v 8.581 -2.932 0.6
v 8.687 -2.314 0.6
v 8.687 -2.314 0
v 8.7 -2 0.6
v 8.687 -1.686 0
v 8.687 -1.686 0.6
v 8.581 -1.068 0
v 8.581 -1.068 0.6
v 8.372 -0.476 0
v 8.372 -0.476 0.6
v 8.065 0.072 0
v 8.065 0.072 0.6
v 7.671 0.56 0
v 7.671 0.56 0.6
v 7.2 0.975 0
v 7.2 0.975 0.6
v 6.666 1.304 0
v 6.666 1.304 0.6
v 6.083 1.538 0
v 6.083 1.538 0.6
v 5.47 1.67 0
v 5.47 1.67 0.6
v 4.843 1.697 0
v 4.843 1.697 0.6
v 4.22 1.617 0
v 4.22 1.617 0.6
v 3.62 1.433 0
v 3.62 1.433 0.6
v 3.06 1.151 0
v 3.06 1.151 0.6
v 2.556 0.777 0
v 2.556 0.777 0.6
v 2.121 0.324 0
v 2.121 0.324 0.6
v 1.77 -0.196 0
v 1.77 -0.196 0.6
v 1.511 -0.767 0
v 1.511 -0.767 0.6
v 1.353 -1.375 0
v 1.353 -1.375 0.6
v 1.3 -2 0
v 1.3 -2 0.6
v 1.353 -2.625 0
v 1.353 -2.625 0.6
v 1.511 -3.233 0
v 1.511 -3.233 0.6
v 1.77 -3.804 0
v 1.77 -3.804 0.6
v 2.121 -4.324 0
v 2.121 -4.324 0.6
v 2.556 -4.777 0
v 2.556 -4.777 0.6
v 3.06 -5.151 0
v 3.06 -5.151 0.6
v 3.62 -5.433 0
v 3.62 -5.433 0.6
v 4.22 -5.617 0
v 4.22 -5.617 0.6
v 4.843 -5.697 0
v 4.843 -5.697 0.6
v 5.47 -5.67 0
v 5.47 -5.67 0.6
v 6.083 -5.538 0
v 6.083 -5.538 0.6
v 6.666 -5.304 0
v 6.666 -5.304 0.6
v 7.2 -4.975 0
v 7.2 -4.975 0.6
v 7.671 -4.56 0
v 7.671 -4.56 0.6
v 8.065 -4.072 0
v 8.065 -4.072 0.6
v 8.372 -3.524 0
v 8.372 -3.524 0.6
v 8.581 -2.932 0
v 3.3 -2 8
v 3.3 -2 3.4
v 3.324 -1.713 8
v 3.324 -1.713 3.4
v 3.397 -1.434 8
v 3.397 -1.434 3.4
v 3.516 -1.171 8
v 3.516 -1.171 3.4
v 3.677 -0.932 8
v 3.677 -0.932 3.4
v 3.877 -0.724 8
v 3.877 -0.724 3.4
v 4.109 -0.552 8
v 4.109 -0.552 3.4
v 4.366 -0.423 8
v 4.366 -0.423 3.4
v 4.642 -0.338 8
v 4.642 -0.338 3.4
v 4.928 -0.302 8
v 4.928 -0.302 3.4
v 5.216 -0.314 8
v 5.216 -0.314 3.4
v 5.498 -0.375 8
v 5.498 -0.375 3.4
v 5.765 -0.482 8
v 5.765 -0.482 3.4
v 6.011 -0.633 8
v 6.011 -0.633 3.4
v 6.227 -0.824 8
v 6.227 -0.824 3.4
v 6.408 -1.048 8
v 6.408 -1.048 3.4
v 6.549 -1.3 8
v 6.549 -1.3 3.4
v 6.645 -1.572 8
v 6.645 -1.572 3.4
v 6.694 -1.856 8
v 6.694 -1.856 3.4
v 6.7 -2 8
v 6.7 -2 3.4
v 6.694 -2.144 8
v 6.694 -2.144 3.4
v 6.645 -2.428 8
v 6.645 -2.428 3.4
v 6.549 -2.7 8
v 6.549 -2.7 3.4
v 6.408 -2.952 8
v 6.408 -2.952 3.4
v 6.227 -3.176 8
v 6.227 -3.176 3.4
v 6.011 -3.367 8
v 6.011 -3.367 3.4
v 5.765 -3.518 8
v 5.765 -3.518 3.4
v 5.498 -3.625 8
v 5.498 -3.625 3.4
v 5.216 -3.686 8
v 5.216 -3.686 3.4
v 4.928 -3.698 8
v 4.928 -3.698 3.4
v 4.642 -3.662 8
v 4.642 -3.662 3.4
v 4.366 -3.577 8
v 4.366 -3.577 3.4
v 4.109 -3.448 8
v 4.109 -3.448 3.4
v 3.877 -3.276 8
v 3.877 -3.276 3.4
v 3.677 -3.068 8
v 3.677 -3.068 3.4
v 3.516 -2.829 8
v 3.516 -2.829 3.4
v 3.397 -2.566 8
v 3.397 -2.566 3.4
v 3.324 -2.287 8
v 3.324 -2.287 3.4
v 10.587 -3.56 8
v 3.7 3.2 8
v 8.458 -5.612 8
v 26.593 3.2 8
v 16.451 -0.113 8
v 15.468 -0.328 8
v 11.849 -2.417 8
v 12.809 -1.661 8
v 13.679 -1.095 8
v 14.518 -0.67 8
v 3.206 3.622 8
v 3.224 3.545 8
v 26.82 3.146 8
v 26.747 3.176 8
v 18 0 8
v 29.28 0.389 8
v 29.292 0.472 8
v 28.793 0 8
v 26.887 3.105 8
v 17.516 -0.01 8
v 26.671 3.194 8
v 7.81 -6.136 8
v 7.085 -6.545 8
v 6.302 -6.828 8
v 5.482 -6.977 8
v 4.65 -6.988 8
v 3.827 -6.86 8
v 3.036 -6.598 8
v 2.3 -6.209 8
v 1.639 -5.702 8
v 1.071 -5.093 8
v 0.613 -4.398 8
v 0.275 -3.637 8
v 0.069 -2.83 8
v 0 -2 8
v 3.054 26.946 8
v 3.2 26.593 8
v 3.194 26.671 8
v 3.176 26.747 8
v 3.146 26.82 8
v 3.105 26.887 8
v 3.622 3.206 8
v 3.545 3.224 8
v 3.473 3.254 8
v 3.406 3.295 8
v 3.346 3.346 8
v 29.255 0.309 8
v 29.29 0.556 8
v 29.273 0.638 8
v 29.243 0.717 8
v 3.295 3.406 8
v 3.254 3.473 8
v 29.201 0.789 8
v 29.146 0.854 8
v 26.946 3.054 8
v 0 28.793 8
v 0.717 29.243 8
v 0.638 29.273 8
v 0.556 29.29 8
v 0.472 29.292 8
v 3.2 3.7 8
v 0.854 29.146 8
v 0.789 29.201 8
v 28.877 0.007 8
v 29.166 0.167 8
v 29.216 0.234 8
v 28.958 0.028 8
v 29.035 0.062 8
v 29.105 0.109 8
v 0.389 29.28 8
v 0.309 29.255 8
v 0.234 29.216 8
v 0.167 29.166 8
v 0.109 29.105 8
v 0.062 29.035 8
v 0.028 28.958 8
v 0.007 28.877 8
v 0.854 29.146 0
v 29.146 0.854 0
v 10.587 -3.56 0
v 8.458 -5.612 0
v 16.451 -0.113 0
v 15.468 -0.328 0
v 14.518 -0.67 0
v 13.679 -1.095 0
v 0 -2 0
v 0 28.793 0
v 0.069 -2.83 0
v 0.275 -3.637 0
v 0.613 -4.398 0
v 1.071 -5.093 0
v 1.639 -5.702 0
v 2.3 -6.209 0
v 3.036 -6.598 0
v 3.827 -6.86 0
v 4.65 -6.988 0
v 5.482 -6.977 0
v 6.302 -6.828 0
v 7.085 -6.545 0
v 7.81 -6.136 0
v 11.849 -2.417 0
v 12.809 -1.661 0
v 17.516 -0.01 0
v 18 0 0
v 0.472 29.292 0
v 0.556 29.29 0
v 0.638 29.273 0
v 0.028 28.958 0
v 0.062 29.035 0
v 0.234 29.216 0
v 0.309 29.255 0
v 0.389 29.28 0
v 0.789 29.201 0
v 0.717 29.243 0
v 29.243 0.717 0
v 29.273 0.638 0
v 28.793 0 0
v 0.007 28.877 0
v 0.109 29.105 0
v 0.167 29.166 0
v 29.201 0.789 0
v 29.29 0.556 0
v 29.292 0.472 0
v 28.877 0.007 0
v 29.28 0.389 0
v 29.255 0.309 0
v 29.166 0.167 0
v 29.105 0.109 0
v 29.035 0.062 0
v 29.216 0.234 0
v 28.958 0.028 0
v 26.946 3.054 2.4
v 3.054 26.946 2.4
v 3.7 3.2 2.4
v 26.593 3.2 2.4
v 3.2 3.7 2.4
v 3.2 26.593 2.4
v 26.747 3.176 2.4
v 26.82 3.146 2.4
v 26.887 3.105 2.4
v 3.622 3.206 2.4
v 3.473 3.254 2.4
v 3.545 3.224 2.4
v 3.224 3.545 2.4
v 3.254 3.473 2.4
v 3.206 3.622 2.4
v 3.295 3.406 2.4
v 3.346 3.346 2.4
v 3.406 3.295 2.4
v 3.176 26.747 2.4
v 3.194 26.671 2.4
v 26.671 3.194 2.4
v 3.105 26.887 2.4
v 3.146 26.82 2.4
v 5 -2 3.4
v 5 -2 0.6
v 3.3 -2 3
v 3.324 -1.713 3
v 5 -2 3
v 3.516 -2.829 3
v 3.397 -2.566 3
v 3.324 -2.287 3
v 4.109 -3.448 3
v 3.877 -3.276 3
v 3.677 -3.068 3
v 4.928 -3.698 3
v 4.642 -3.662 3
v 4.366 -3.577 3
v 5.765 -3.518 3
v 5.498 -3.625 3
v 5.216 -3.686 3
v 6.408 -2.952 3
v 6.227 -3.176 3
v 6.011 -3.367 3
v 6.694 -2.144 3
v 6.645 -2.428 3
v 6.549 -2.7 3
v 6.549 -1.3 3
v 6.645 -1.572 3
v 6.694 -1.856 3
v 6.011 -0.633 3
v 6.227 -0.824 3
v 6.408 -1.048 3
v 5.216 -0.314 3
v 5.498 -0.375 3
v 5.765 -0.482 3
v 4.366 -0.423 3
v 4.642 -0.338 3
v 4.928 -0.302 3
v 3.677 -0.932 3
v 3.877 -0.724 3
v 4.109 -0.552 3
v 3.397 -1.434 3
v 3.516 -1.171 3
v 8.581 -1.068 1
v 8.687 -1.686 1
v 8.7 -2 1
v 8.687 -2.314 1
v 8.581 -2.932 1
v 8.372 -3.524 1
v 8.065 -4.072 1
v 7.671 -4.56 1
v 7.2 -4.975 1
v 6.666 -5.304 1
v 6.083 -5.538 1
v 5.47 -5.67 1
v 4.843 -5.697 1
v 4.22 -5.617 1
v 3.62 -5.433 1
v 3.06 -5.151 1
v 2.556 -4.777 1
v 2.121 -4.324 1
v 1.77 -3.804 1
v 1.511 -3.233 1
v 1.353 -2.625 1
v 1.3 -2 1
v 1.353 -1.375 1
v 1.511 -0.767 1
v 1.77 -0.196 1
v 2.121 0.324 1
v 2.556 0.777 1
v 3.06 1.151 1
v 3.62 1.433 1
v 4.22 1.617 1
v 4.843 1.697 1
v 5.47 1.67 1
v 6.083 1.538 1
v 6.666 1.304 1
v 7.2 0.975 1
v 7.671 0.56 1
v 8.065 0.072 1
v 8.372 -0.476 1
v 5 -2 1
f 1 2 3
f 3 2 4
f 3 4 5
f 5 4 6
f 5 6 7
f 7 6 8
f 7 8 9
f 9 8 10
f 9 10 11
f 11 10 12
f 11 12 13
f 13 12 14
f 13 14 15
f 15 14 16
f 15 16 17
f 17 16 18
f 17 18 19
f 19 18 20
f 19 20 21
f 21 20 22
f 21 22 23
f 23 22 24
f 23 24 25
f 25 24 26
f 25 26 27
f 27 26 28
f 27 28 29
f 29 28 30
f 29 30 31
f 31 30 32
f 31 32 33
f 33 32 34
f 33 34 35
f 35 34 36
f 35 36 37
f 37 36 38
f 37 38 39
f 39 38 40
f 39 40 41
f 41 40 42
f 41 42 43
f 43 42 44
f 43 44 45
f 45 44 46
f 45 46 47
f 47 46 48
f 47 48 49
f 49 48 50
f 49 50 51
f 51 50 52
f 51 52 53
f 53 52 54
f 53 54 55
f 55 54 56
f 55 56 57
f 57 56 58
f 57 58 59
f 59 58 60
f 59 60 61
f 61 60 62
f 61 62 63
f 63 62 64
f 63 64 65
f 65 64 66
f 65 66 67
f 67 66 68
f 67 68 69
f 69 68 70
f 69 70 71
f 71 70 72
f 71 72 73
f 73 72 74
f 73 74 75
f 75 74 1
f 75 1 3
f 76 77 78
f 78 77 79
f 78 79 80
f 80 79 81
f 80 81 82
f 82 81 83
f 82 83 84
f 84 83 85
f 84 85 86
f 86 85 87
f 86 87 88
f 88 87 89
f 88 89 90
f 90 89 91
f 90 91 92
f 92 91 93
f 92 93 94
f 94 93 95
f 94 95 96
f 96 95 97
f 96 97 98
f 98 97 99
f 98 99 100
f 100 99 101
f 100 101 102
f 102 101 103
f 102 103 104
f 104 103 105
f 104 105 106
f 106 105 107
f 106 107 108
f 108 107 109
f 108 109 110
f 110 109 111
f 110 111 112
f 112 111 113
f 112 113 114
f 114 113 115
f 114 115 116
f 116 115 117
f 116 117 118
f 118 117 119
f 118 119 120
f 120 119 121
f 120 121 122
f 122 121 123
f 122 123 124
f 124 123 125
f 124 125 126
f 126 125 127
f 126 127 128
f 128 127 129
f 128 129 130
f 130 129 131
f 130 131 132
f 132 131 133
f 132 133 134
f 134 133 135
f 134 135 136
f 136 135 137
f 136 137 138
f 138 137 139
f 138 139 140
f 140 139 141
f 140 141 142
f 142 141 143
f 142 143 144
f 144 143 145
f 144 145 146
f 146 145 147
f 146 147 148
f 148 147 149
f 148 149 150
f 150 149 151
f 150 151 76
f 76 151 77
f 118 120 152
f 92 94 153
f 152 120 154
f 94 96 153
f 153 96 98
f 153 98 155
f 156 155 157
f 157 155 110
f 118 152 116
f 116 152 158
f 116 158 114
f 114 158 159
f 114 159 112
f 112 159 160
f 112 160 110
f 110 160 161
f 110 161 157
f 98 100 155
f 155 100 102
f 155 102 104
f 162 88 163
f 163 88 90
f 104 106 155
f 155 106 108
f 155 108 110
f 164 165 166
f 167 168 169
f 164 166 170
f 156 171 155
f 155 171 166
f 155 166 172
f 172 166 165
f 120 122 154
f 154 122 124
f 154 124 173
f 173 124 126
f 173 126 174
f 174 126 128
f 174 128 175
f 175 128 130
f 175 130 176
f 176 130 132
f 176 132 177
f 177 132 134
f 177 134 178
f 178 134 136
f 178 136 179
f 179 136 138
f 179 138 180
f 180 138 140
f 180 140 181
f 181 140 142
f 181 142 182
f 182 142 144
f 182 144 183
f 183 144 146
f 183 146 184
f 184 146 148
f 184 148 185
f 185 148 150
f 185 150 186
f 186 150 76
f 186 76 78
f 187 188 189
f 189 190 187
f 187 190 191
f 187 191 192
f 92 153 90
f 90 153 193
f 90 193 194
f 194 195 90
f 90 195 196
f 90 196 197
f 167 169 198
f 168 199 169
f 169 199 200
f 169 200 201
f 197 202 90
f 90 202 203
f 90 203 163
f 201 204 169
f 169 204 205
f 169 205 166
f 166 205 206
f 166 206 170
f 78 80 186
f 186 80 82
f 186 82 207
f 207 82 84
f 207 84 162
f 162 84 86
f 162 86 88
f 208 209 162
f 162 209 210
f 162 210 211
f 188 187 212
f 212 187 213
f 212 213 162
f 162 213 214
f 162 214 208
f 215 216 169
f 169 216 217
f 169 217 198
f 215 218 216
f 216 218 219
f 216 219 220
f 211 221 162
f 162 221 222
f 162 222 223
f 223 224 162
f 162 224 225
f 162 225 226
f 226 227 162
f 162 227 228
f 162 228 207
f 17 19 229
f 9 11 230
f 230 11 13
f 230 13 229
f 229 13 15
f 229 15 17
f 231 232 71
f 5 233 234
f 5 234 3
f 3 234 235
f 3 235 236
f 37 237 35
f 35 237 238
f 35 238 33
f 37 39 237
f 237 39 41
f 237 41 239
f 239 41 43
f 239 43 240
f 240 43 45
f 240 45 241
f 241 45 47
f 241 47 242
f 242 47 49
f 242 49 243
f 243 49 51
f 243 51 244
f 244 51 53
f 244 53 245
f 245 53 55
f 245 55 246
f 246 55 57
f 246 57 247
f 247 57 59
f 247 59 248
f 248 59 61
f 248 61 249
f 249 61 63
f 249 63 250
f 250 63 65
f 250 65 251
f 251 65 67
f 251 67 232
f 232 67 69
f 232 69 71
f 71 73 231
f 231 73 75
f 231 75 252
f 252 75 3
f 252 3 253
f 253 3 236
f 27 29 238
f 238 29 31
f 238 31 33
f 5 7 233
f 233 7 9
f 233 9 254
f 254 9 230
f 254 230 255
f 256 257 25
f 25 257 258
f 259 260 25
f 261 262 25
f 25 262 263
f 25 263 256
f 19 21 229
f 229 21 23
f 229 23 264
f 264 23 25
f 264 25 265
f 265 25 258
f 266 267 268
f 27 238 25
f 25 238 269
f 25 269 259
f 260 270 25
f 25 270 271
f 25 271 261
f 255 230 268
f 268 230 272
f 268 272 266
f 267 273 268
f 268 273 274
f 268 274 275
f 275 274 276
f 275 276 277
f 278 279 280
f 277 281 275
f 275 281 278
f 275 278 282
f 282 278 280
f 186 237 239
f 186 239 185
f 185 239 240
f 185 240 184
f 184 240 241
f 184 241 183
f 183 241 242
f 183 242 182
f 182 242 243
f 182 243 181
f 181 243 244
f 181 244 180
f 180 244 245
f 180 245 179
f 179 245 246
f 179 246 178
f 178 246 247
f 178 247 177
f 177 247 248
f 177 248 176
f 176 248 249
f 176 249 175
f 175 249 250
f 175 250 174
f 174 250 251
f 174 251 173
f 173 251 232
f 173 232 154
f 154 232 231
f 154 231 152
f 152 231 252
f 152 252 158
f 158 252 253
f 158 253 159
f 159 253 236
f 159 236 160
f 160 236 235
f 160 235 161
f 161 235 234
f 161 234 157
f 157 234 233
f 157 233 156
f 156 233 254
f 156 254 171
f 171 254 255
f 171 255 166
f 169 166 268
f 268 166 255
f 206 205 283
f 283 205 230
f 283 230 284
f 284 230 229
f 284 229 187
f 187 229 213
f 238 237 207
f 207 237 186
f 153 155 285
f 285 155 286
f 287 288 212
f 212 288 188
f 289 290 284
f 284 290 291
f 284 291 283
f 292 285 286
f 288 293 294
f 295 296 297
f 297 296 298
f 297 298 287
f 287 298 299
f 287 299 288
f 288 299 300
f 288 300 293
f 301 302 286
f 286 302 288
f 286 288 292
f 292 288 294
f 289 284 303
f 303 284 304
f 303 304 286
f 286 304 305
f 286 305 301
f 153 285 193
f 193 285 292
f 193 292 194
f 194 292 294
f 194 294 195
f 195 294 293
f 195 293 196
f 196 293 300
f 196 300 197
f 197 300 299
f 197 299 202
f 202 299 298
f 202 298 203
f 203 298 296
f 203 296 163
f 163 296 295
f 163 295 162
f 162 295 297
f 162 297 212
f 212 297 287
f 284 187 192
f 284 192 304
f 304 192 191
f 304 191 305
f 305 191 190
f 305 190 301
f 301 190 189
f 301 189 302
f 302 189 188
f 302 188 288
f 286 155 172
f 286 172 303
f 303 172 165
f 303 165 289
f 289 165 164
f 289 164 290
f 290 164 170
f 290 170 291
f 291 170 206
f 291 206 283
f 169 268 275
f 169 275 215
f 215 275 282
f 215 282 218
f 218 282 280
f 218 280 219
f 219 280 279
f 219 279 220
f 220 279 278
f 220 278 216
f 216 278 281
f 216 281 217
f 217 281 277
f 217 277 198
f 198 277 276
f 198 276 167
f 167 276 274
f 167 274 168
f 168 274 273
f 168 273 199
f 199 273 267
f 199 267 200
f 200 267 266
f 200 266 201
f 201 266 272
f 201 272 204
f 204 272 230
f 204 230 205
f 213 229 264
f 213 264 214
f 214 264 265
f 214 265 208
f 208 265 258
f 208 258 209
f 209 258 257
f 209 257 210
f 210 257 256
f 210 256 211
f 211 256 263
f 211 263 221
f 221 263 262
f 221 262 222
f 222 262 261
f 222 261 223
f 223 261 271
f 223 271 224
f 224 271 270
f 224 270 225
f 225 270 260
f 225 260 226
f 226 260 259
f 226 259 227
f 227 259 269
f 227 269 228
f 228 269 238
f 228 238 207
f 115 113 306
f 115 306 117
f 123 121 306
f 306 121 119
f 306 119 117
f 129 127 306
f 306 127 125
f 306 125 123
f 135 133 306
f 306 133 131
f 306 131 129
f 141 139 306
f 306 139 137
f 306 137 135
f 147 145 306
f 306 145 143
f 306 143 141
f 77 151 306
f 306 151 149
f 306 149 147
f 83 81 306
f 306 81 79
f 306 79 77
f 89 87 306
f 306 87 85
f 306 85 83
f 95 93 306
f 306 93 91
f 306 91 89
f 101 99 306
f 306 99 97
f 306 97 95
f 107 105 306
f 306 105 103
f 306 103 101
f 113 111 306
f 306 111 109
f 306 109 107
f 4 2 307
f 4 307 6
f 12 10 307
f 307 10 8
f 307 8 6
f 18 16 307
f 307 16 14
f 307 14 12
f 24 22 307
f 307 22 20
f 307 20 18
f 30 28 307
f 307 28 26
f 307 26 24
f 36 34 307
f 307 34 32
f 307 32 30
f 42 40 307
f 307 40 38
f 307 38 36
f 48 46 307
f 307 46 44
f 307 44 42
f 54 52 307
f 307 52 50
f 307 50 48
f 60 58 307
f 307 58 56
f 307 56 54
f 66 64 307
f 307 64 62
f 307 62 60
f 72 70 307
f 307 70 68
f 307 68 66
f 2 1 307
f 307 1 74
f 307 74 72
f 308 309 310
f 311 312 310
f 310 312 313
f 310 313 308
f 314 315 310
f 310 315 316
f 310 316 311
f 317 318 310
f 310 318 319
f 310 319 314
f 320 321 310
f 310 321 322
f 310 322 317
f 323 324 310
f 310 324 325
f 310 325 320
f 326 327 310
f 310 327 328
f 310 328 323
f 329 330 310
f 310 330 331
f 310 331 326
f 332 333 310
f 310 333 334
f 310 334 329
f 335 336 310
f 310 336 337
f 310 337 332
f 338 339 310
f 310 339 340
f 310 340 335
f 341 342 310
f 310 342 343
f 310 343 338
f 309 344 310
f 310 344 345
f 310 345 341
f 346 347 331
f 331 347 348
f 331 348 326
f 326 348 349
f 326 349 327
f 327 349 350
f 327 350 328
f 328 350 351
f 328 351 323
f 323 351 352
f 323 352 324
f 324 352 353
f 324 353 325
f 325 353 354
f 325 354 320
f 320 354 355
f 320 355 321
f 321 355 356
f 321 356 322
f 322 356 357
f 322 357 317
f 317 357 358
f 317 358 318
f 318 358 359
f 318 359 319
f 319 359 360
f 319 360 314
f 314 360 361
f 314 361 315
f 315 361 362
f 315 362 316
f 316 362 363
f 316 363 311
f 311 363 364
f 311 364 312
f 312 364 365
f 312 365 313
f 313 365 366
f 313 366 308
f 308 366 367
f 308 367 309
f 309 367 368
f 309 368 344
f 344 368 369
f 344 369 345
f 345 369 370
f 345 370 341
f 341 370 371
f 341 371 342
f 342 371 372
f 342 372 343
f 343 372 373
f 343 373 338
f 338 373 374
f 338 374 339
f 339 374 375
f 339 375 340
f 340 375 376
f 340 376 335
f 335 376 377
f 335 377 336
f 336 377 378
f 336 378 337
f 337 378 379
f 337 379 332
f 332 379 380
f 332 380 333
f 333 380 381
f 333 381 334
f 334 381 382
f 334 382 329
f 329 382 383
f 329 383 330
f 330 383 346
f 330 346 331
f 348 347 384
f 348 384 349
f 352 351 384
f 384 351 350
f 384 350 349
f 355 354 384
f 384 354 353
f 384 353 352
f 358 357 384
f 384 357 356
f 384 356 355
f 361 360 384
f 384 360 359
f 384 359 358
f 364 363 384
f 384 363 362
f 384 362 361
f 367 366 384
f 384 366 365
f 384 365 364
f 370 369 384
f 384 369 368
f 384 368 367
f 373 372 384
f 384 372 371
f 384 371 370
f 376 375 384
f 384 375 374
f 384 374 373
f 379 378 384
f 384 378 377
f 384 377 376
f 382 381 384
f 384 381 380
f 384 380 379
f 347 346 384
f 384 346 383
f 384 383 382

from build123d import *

# Parameters (mm, degrees)
SKETCH1_R           = 1.7
BOSS_EXTRUDE1_DEPTH = 8
CUT_EXTRUDE1_DEPTH  = 5.6
FILLET1_R           = 0.5
SKETCH5_R           = 3.7
CUT_EXTRUDE2_DEPTH  = 1
CHAMFER1_SIZE       = 2
SKETCH6_R           = 1.7
BOSS_EXTRUDE2_DEPTH = 0.4
BOSS_EXTRUDE3_START = -0.4
SKETCH7_R           = 3.7
BOSS_EXTRUDE3_DEPTH = 0.4


with BuildPart() as part:
    # Sketch1 → Boss-Extrude1 (new body)
    with BuildSketch(Plane.XY):
        with BuildLine():
            Line((0, 0), (0, 30))
            Line((0, 30), (30, 0))
            Line((30, 0), (18, 0))
            add(Edge.make_bspline(
                [(18, 0), (13.851240238, 0), (12.090763012, -2.133887147), (8.457514689, -5.611868239)],
                knots=[0, 0, 0, 0, 1, 1, 1, 1], degree=3))
            ThreePointArc((8.457514689, -5.611868239), (3.036275661, -6.598237349), (0, -2))
            Line((0, -2), (0, 0))
        make_face()
        with Locations((5, -2)):
            Circle(SKETCH1_R, mode=Mode.SUBTRACT)
    extrude(amount=BOSS_EXTRUDE1_DEPTH)

    # Sketch2 → Cut-Extrude1 (cut)
    with BuildSketch(Plane.XY.offset(8)):
        Polygon((3.2, 26.8), (3.2, 3.2), (26.8, 3.2), align=None)
    extrude(amount=-CUT_EXTRUDE1_DEPTH, mode=Mode.SUBTRACT)

    # Fillet1
    fillet1_edges = [part.edges().sort_by_distance(p)[0] for p in [
        (0, 30, 4),
        (30, 0, 4),
        (3.2, 26.8, 5.2),
        (26.8, 3.2, 5.2),
        (3.2, 3.2, 5.2),
    ]]
    fillet(fillet1_edges, radius=FILLET1_R)

    # Sketch5 → Cut-Extrude2 (cut)
    with BuildSketch(Plane(origin=(0, 0, 0), x_dir=(-1, 0, 0), z_dir=(0, 0, -1))):
        with Locations((-5, -2)):
            Circle(SKETCH5_R)
    extrude(amount=-CUT_EXTRUDE2_DEPTH, mode=Mode.SUBTRACT)

    # Chamfer1
    chamfer1_edges = [part.edges().sort_by_distance(p)[0] for p in [
        (3.3, -2, 1),
    ]]
    chamfer(chamfer1_edges, length=CHAMFER1_SIZE - 0.0001)  # a hair under: the kernel refuses the full size

    # Sketch6 → Boss-Extrude2 (add)
    with BuildSketch(Plane.XY.offset(3)):
        with Locations((5, -2)):
            Circle(SKETCH6_R)
    extrude(amount=BOSS_EXTRUDE2_DEPTH)

    # Sketch7 → Boss-Extrude3 (add)
    with BuildSketch(Plane.XY.offset(1).offset(BOSS_EXTRUDE3_START)):
        with Locations(Location((5, -2, 0), (0, 0, 180))):
            Circle(SKETCH7_R)
    extrude(amount=BOSS_EXTRUDE3_DEPTH)


solid = part.part
